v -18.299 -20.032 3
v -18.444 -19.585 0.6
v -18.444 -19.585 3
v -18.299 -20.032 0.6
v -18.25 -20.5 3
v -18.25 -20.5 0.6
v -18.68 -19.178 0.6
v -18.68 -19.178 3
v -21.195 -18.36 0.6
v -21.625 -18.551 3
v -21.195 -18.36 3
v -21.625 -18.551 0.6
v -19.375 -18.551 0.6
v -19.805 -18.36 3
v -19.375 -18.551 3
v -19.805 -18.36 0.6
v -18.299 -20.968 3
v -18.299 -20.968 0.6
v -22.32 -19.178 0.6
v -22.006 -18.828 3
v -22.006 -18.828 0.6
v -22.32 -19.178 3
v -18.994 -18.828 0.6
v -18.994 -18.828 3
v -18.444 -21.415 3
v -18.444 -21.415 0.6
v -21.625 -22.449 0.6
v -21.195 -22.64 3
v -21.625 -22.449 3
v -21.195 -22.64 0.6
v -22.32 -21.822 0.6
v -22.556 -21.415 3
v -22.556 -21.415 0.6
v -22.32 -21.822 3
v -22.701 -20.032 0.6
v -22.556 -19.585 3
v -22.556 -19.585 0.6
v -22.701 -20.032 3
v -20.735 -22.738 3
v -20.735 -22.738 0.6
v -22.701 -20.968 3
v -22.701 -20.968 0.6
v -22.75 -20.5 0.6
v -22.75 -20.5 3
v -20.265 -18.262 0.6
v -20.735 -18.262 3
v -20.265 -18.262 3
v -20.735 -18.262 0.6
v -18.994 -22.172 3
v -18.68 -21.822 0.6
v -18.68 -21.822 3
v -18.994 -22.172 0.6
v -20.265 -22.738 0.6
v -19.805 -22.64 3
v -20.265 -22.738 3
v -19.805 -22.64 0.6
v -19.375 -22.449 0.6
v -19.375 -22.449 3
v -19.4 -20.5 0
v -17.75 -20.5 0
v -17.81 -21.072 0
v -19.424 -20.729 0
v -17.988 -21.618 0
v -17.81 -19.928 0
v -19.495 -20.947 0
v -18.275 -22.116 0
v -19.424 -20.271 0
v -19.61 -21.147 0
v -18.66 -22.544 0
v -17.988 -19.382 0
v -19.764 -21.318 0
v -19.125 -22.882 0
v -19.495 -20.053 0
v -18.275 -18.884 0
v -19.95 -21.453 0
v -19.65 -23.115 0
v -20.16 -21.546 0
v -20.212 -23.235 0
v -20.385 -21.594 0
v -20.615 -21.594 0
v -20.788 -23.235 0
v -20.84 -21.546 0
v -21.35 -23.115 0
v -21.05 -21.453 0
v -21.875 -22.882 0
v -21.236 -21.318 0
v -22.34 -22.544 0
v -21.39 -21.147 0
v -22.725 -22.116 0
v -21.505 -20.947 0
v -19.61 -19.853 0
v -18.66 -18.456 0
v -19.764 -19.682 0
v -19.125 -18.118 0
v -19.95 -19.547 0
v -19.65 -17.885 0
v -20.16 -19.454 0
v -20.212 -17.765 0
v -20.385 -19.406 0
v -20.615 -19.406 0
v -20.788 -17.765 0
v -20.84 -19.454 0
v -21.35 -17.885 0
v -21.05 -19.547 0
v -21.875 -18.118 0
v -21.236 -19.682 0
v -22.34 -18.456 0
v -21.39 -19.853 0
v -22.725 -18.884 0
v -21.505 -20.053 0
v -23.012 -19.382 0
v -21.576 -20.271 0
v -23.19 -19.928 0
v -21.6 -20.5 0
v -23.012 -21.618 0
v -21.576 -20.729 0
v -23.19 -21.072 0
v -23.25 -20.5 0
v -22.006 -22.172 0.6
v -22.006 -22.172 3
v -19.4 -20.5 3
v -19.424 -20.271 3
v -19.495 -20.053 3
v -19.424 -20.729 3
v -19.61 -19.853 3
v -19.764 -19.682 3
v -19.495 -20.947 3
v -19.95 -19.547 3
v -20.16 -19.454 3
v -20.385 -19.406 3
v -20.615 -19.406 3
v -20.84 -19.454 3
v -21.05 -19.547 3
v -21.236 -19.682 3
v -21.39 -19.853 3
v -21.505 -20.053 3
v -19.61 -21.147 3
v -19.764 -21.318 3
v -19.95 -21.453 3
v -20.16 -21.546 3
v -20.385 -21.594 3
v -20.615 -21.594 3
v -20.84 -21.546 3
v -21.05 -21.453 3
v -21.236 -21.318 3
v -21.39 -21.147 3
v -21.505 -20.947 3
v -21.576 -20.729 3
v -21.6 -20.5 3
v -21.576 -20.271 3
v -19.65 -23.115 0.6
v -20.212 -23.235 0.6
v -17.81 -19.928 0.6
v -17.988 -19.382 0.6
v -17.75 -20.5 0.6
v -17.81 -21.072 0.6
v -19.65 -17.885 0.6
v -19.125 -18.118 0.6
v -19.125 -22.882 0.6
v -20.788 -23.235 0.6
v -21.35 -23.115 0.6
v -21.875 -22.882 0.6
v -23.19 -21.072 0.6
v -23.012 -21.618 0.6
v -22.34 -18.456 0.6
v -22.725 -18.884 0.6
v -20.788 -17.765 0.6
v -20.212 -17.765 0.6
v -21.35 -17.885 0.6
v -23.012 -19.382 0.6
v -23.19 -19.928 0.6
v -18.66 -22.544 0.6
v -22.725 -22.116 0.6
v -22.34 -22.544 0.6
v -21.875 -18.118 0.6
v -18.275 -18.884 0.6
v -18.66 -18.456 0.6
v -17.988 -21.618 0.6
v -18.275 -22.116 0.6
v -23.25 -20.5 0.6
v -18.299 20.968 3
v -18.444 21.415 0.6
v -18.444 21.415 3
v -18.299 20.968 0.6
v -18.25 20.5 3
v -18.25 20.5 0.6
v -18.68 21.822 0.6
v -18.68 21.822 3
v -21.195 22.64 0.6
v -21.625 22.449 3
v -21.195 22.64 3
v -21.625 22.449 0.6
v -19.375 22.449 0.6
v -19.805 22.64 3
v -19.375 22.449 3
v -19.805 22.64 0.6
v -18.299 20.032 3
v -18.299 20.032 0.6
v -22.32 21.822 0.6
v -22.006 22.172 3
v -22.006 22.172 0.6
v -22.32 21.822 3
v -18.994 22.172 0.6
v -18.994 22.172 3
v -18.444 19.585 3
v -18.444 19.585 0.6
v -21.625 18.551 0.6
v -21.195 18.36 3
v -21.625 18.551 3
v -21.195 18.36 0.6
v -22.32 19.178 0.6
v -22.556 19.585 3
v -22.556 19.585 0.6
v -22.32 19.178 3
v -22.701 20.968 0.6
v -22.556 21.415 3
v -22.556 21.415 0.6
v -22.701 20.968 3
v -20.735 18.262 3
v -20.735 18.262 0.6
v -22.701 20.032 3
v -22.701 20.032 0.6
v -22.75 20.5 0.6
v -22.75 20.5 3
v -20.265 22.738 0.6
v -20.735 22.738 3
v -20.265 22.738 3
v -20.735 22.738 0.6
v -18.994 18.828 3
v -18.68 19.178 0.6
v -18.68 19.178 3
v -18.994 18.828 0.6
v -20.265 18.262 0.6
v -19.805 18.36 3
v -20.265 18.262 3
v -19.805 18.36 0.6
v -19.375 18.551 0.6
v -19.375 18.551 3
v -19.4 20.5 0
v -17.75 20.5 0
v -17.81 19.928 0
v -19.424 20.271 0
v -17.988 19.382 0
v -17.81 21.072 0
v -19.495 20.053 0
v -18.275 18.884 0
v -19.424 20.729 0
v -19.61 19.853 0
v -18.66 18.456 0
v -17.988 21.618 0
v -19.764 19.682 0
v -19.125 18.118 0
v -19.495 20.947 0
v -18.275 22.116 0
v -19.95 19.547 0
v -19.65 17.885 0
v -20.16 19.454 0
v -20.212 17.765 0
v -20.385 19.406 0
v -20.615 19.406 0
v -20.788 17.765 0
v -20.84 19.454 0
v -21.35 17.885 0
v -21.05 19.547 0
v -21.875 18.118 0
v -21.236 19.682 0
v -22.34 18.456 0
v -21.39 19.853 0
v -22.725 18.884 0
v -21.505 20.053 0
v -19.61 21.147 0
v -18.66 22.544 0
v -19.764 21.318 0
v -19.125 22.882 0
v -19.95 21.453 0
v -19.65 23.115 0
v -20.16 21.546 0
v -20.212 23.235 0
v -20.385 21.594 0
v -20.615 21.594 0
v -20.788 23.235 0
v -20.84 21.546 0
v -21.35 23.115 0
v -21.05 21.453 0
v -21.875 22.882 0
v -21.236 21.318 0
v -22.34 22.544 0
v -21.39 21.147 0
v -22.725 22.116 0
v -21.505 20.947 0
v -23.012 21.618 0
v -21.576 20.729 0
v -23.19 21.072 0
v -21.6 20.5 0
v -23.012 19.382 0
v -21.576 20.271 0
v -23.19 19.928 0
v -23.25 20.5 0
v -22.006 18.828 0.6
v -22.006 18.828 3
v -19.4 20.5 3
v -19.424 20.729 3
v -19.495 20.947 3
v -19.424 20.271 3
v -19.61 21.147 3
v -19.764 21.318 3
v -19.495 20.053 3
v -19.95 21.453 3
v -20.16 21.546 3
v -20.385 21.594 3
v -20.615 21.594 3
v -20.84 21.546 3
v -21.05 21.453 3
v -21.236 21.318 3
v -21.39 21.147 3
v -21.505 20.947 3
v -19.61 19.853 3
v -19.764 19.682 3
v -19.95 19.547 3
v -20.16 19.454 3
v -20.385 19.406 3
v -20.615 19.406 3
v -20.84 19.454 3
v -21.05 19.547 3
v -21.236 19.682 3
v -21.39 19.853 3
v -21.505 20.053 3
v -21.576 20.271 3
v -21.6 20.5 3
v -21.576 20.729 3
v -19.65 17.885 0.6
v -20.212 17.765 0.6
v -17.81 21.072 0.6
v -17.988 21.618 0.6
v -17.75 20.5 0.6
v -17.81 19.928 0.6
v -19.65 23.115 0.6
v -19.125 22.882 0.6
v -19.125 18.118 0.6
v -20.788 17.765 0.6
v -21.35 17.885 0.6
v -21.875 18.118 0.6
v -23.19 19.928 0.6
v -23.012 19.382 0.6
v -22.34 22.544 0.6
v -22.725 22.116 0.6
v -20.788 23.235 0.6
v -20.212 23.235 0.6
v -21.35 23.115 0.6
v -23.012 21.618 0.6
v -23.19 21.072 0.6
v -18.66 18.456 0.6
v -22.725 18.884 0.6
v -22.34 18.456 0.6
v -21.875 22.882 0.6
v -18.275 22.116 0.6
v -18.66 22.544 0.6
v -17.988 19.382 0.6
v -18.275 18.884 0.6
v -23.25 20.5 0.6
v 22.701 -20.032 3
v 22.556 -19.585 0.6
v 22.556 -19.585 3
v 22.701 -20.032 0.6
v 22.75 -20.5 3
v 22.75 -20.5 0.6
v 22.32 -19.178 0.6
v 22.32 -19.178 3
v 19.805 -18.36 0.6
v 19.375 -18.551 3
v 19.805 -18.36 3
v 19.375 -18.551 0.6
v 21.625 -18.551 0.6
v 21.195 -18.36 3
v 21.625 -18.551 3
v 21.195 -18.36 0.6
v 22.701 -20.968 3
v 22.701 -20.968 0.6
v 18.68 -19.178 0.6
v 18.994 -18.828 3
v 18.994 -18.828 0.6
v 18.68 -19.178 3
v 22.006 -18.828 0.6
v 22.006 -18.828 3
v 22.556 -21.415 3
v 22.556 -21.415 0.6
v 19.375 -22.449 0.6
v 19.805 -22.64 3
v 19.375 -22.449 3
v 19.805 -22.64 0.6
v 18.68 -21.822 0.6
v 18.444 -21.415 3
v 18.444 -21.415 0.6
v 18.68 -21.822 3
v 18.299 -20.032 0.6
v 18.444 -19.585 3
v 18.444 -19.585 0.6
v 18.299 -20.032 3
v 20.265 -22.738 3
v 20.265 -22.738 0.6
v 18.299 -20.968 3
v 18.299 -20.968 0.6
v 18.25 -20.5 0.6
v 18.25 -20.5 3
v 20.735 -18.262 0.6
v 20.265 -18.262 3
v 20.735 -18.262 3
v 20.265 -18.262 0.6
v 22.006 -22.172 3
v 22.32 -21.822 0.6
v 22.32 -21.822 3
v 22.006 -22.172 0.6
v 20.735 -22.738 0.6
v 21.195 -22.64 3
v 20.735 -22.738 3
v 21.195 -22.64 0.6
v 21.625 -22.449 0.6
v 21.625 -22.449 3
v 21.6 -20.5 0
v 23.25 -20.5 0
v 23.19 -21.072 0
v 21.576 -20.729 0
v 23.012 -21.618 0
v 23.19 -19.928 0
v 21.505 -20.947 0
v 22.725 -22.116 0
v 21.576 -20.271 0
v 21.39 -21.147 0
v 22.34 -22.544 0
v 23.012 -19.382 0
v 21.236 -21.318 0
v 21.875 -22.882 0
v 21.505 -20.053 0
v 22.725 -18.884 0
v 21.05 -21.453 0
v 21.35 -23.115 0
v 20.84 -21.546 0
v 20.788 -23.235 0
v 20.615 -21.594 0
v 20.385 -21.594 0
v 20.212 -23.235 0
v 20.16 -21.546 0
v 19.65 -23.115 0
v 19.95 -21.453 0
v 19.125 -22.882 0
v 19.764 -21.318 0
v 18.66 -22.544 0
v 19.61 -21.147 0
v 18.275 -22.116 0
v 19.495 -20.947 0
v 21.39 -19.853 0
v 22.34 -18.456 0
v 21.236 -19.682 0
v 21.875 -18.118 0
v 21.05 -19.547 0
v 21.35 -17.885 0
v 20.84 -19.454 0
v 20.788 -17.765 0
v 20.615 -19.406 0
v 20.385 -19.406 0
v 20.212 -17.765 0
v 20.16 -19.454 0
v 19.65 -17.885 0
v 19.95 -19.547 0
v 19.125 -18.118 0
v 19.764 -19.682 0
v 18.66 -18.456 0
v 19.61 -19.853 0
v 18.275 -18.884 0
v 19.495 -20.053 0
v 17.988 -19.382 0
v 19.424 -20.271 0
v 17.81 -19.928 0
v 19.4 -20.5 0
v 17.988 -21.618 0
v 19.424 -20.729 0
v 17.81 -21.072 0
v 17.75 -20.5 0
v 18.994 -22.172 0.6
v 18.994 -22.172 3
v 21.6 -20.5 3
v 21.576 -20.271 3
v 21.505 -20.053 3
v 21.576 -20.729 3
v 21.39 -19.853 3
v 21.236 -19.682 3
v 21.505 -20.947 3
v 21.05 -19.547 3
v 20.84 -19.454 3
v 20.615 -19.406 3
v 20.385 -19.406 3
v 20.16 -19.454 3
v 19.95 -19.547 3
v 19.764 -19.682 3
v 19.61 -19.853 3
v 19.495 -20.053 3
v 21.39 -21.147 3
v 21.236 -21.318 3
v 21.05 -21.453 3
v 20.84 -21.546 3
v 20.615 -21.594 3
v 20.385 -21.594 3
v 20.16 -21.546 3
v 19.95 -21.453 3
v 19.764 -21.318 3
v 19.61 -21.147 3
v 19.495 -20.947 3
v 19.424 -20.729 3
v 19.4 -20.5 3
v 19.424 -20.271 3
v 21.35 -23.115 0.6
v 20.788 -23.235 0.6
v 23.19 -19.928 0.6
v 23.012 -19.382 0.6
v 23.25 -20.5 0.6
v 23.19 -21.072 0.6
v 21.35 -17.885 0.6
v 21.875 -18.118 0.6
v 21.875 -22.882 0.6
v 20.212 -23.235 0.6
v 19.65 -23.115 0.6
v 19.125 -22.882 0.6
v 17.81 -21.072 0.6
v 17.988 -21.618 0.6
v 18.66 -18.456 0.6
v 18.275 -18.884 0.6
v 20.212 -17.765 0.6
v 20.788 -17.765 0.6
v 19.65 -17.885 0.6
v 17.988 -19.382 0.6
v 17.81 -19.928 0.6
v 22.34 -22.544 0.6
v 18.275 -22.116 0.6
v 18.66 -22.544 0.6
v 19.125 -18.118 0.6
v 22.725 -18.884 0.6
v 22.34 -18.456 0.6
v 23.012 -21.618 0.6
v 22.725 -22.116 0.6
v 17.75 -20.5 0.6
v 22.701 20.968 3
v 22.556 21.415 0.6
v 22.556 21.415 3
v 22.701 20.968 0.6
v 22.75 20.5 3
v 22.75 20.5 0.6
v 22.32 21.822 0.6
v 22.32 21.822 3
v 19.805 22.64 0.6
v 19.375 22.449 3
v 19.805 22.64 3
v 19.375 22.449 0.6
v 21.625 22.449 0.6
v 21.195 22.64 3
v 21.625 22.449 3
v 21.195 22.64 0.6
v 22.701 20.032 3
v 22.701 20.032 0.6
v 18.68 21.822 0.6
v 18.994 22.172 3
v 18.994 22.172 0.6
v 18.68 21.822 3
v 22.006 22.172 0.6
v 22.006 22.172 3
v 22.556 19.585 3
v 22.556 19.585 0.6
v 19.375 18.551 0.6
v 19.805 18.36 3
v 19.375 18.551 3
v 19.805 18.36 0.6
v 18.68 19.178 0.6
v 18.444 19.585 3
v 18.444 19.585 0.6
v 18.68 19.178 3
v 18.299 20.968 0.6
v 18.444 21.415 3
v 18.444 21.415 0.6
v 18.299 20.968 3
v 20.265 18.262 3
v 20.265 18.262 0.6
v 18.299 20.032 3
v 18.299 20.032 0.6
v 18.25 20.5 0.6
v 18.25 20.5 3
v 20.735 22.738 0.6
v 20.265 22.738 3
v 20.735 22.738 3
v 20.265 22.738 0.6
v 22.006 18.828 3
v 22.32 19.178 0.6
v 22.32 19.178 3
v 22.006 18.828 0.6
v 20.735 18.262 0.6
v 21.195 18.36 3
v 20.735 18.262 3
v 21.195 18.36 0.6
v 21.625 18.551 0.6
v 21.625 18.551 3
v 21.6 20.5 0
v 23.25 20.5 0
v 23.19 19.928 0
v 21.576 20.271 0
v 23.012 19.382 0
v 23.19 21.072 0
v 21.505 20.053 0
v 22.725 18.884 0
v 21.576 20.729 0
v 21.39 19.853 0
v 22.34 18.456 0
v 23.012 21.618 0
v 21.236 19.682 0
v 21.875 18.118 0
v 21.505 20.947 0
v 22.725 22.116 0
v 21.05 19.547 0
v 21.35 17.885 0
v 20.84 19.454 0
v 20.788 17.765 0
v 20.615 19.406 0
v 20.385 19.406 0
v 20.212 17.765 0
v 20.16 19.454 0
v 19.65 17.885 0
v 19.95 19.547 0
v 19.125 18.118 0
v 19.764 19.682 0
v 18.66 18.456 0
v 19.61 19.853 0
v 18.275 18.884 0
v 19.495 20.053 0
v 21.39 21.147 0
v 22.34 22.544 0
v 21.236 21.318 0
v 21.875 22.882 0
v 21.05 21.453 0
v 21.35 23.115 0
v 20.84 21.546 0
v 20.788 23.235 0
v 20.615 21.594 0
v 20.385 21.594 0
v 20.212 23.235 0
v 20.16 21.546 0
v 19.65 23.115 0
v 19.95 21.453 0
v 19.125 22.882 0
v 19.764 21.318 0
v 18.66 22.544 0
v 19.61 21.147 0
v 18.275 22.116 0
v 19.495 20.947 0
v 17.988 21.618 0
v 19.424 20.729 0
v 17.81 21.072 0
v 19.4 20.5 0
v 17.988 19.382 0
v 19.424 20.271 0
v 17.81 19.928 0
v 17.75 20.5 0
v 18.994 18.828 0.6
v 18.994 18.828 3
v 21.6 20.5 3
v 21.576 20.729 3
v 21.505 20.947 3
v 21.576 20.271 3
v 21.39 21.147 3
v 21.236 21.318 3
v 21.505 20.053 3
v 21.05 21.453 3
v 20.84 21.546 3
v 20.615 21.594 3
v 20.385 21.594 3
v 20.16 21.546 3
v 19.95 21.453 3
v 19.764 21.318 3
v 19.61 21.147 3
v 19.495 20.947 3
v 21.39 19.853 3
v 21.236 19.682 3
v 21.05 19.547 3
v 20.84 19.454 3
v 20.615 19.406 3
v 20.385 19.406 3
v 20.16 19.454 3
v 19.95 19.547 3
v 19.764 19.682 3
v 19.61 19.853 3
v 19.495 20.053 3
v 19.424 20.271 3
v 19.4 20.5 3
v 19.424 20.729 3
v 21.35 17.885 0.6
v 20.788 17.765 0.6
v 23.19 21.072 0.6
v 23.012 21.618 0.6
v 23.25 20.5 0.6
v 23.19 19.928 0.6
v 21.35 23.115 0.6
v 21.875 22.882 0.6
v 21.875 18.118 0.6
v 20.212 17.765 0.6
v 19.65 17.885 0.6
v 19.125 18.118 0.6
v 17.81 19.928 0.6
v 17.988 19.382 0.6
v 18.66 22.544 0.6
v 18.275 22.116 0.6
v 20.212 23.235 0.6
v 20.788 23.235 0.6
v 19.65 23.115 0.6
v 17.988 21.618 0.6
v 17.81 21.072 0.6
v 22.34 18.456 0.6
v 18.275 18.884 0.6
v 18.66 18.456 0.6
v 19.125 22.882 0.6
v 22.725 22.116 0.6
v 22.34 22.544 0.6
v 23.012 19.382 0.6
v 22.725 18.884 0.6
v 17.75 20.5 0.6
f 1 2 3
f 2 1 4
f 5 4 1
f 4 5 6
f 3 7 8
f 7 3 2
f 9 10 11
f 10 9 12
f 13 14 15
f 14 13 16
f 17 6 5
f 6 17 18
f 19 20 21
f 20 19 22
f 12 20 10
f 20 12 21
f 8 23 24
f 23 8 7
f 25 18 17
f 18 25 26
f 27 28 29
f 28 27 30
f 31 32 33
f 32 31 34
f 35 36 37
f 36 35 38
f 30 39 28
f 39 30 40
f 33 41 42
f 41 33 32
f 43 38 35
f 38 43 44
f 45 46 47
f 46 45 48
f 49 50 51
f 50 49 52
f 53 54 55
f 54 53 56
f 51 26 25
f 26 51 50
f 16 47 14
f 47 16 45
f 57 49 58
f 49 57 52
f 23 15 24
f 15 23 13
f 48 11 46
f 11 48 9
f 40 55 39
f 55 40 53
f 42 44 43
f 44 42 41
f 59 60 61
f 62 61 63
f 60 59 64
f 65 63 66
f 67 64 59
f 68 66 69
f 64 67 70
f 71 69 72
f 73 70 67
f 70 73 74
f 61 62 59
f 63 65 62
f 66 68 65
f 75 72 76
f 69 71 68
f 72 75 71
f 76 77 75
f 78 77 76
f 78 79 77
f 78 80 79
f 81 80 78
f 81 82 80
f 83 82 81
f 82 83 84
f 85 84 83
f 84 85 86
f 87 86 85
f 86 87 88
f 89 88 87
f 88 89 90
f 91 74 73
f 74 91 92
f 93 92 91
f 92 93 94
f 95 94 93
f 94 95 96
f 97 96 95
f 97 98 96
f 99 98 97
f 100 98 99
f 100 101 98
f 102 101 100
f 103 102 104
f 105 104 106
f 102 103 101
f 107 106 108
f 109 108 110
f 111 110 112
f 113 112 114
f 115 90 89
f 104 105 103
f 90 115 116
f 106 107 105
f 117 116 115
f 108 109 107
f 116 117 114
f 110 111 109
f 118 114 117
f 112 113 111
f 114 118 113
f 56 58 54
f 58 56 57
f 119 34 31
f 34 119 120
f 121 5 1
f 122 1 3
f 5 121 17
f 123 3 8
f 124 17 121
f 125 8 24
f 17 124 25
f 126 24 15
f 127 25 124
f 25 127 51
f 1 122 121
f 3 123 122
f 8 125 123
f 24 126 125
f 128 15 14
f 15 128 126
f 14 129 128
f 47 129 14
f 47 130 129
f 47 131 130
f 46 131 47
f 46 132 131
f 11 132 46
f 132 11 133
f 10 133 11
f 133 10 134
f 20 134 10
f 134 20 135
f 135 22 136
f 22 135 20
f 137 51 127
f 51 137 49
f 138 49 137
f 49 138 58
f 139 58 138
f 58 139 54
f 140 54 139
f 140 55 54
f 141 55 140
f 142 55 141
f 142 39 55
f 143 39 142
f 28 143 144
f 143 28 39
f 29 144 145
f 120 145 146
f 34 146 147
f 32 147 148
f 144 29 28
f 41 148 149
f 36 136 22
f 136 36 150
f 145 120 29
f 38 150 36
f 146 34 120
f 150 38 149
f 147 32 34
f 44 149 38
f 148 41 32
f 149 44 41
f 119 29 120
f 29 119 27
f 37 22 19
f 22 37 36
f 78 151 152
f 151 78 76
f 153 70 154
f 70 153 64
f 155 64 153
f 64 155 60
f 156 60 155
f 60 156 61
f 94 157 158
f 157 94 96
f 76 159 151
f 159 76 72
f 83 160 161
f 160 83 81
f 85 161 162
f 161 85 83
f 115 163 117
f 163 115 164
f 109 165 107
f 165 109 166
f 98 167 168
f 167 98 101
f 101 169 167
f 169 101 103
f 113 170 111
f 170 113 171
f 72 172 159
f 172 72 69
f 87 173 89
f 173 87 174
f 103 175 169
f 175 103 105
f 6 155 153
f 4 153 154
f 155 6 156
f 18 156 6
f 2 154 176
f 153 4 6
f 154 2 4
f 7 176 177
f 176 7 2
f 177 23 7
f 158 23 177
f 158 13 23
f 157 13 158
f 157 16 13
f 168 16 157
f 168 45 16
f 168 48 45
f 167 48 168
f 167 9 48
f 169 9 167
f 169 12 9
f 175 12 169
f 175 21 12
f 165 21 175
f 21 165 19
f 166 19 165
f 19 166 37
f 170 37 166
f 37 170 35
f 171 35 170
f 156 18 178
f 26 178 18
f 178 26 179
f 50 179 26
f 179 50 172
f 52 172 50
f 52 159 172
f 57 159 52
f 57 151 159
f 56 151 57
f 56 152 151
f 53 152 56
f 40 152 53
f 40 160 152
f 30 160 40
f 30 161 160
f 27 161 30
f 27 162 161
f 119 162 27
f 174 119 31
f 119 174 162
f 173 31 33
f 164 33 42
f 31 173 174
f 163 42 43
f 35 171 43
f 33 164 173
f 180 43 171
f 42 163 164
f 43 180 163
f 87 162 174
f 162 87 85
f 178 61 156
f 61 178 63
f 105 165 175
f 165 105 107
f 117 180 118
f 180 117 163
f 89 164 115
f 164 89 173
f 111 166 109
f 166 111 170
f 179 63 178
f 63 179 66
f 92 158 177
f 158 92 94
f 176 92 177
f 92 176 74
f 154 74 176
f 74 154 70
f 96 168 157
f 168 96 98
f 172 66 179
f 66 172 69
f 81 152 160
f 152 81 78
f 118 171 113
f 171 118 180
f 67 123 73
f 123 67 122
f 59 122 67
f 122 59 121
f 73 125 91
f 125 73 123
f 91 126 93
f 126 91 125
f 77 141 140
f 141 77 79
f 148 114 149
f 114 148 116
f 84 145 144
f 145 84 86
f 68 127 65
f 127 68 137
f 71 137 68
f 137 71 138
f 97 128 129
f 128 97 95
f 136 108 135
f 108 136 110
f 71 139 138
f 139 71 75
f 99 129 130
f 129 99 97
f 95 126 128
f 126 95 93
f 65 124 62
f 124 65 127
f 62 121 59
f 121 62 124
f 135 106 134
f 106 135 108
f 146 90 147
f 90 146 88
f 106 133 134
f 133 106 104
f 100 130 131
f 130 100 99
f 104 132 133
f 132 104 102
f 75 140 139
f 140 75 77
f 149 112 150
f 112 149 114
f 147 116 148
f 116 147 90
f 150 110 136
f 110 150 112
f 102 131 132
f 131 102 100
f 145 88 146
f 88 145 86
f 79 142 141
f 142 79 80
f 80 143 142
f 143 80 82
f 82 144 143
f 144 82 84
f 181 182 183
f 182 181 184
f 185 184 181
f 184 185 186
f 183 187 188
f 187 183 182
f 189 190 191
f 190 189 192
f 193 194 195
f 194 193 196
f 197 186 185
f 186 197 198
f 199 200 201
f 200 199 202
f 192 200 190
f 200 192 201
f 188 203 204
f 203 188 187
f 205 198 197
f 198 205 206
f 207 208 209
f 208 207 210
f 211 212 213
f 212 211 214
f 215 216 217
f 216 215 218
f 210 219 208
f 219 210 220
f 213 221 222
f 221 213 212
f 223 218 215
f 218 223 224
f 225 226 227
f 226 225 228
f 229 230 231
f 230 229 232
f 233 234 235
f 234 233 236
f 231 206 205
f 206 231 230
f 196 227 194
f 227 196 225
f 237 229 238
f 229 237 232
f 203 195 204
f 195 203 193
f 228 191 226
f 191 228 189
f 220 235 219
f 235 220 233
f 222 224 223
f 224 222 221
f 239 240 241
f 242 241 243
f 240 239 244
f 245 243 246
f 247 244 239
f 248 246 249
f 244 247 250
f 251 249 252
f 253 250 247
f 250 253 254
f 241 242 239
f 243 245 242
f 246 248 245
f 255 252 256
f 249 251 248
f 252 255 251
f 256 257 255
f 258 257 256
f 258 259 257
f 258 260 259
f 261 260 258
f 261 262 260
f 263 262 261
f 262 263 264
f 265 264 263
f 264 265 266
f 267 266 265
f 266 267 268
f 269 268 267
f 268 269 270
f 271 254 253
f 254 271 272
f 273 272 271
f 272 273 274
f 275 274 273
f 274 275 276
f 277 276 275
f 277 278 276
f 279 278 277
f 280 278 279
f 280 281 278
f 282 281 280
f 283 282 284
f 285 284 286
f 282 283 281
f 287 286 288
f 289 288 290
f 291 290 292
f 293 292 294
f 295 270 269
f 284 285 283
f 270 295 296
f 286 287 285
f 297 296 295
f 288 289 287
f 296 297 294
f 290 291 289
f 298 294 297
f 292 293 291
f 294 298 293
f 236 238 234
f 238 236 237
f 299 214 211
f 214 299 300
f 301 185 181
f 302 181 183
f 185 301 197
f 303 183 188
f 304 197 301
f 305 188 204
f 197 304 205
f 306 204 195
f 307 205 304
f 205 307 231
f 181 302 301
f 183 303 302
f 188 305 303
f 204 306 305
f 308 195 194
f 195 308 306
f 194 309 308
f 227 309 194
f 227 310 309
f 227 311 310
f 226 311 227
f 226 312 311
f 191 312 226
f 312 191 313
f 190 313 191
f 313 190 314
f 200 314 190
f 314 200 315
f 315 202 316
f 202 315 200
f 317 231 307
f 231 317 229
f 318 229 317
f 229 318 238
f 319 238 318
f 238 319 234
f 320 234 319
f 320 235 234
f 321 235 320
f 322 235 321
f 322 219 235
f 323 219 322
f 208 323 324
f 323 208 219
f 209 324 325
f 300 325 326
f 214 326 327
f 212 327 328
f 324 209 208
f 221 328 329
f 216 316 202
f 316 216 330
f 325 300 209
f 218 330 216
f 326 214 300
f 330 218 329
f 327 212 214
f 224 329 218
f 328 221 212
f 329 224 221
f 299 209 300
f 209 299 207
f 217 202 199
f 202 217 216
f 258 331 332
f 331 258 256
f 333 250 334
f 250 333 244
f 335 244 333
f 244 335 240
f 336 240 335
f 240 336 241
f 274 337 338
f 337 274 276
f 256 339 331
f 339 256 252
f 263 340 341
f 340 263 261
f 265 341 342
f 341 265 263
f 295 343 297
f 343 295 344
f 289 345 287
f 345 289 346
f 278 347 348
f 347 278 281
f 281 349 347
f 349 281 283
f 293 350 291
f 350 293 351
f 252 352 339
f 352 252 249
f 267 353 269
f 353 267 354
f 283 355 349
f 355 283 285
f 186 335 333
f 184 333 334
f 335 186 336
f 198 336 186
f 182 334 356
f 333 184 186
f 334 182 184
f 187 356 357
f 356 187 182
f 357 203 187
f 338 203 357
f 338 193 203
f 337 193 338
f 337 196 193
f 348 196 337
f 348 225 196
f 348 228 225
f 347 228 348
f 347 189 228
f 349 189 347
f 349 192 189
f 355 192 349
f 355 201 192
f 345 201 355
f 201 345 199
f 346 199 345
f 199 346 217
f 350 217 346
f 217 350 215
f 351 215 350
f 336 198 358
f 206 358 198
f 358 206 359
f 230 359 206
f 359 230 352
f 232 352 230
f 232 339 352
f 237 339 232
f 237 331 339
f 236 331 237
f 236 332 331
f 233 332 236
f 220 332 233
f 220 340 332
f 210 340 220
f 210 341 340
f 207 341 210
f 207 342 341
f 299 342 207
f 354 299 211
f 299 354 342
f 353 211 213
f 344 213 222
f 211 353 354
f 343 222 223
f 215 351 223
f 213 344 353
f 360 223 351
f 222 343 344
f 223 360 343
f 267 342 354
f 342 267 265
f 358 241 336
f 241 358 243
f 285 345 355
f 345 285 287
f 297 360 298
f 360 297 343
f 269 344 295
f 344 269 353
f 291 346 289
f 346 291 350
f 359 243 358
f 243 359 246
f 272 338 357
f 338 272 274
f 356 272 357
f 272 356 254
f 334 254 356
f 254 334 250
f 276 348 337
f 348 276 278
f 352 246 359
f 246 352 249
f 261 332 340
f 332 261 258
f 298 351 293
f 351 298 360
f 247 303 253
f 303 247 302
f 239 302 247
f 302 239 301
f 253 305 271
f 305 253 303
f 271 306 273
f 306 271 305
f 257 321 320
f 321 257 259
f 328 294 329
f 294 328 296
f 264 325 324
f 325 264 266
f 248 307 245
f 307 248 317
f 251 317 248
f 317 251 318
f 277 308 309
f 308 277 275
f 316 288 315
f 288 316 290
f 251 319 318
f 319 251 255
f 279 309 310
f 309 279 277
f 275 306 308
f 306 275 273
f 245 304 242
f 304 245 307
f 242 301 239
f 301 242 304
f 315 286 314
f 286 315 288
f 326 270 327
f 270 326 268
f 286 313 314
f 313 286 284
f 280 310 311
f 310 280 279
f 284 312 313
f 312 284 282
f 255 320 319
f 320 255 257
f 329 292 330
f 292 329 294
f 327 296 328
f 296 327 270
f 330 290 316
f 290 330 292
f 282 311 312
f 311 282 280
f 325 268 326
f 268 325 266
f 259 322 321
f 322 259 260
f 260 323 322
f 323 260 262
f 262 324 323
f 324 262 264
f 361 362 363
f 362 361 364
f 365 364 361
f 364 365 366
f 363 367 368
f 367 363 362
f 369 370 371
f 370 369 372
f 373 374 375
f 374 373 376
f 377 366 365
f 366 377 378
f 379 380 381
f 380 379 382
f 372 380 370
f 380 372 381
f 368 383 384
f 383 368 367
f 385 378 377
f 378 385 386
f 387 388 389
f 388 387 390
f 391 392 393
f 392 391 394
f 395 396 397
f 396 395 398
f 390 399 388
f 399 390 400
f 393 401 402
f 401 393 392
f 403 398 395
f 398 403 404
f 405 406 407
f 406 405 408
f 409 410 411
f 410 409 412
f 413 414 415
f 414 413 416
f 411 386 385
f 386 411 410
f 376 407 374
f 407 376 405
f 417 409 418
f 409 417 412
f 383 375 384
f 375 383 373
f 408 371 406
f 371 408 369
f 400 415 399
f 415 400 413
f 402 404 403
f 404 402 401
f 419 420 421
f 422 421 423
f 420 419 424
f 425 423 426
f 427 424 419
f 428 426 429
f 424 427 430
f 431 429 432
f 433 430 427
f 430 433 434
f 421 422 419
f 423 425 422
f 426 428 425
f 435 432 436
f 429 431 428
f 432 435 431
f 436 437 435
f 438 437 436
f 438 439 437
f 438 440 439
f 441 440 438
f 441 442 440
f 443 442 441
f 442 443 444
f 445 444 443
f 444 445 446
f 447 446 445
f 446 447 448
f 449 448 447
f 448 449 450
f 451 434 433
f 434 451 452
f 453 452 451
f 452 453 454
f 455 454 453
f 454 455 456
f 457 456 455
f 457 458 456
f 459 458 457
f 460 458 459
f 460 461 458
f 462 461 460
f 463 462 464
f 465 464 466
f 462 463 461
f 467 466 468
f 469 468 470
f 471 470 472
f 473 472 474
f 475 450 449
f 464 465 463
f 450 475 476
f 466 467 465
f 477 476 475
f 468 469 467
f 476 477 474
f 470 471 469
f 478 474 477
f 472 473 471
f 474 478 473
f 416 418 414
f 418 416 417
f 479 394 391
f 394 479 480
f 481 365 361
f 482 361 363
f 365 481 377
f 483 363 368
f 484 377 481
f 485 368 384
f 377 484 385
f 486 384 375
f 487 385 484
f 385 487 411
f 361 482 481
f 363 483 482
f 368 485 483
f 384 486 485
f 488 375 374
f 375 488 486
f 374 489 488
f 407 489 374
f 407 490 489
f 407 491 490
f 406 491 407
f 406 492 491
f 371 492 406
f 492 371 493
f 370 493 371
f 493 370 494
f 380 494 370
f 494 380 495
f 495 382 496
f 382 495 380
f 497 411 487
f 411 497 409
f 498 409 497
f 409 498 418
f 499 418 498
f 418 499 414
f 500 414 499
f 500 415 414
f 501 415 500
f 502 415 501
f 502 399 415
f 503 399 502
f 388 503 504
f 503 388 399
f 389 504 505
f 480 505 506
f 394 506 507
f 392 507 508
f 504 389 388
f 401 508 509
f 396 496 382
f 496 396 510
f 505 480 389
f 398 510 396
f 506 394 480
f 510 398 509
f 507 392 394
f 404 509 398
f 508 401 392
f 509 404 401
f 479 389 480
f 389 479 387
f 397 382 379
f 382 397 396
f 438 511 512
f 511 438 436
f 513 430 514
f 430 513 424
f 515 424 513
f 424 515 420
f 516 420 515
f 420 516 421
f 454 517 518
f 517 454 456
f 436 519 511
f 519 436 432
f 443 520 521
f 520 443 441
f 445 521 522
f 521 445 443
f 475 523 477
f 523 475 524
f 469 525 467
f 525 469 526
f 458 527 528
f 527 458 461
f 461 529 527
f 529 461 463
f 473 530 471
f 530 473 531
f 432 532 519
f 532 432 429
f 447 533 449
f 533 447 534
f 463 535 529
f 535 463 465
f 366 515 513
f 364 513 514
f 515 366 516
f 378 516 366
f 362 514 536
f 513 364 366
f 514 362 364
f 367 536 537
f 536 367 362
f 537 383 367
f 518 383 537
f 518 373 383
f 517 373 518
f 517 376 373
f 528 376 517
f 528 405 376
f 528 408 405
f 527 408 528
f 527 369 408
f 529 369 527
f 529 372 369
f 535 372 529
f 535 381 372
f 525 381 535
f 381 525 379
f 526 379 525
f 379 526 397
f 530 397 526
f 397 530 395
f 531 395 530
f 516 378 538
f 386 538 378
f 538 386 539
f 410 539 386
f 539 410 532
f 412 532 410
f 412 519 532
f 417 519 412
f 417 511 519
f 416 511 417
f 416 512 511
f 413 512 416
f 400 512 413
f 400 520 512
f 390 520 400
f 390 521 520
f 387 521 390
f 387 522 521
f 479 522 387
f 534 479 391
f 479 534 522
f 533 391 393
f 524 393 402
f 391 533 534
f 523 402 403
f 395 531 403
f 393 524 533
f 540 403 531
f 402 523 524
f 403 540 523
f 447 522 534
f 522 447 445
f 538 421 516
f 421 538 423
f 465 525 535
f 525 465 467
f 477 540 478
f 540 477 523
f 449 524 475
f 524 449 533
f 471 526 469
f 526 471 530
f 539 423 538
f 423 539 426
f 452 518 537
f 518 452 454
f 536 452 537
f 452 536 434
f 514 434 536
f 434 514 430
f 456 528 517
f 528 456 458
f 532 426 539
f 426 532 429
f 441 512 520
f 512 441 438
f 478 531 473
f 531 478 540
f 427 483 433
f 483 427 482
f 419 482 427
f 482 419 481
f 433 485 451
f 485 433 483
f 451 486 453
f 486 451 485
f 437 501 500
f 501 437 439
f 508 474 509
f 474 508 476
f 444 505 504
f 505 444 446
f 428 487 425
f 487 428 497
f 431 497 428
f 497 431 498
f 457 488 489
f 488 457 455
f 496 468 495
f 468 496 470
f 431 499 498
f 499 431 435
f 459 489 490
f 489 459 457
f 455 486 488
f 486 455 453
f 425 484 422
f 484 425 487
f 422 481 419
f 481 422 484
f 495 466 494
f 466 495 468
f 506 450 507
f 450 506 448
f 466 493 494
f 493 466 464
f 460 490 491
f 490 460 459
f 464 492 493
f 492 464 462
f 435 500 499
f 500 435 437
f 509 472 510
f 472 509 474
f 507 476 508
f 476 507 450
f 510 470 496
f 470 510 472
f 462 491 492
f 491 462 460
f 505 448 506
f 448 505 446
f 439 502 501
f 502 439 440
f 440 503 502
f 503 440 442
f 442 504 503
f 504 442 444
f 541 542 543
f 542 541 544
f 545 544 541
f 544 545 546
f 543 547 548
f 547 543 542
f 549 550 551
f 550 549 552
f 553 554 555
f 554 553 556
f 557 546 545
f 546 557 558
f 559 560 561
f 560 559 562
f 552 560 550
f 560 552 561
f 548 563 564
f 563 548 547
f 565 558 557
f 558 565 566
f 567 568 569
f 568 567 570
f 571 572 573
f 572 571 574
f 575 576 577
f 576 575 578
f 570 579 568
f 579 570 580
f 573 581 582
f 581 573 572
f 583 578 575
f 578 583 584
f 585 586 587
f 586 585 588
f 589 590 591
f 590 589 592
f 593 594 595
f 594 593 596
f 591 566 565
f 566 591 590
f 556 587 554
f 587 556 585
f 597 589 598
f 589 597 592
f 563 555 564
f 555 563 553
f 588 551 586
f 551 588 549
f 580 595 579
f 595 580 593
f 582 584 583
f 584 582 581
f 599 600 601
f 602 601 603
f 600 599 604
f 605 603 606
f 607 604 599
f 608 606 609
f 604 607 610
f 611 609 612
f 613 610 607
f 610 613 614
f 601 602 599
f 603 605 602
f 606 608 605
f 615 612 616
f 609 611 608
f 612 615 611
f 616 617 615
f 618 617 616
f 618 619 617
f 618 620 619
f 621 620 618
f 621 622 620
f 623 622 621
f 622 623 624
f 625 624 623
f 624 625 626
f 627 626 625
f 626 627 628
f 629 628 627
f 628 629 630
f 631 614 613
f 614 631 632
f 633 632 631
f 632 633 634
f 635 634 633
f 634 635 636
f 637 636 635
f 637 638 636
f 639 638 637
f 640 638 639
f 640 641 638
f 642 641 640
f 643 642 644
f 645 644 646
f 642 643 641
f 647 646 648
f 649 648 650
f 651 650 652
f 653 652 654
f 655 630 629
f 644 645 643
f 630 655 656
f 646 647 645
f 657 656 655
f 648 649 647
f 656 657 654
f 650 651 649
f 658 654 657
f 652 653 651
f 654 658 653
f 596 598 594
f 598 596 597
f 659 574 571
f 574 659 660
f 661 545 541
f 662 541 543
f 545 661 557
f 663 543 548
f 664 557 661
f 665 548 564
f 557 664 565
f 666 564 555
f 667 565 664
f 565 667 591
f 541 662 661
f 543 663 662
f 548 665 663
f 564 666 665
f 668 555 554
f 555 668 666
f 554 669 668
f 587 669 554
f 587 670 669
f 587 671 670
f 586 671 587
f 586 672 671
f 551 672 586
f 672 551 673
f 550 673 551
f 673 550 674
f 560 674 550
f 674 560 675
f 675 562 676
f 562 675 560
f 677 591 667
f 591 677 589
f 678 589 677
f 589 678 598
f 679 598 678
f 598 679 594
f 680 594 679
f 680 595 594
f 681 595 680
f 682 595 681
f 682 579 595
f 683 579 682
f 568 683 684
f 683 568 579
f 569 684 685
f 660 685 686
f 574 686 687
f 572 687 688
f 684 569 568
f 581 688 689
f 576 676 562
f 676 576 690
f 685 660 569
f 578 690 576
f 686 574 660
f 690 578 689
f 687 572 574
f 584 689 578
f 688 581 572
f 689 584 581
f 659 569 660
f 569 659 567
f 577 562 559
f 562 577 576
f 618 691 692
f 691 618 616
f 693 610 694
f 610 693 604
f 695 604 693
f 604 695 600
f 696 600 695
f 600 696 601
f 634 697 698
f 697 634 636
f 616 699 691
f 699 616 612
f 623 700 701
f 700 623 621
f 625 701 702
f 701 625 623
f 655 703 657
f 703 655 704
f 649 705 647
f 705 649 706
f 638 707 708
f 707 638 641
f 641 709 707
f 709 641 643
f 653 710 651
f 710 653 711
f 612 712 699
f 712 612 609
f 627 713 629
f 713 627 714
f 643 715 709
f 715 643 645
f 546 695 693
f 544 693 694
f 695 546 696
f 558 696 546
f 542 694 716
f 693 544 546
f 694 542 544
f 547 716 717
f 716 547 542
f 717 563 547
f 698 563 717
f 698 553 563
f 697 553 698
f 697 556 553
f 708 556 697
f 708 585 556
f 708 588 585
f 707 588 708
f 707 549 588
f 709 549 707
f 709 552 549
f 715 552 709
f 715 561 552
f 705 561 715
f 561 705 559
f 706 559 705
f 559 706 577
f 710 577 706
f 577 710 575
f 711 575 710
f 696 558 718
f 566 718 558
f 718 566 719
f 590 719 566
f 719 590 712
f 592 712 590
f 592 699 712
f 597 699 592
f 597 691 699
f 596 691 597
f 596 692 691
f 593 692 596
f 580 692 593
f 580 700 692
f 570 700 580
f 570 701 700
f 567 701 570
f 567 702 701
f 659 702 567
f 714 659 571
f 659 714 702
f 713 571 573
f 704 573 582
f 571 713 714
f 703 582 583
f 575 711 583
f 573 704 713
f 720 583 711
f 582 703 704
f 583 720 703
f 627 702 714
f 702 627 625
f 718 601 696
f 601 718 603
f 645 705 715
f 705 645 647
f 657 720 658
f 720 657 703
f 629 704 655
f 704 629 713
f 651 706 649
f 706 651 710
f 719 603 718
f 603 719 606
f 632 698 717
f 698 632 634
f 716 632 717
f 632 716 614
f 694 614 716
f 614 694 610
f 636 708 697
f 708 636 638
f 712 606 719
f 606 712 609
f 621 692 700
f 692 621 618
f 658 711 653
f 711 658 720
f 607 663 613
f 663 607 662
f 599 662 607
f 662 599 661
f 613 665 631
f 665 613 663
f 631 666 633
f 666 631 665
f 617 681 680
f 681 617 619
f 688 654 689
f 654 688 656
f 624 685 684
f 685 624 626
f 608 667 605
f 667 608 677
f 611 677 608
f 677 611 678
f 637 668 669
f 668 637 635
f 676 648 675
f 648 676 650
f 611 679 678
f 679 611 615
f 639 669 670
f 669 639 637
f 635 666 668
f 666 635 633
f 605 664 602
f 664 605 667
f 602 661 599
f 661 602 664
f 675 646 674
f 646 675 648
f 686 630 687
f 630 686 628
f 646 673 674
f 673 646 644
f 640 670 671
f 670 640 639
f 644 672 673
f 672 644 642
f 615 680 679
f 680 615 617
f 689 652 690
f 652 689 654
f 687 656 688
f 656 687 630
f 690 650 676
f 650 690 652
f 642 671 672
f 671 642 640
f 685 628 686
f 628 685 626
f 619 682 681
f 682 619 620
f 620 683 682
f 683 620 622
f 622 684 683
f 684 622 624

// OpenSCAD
// RWC Energy Core - Square Edition
// Part 5: PCB Standoffs (set of 4)
// M2 standoffs, 3mm tall, sit on bottom shell screw posts
$fn = 30;

standoff_h = 3;
standoff_od = 4.5;
standoff_id = 2.2;  // M2 through hole
post_inset = 7;
size = 55;

module standoff() {
    difference() {
        union() {
            cylinder(d=standoff_od, h=standoff_h);
            // Small flange at base for stability
            cylinder(d=standoff_od + 1, h=0.6);
        }
        translate([0, 0, -0.1])
            cylinder(d=standoff_id, h=standoff_h + 0.2);
    }
}

// 4 standoffs arranged at mounting positions
for (x = [-1, 1], y = [-1, 1])
    translate([x * (size/2 - post_inset), y * (size/2 - post_inset), 0])
        standoff();
